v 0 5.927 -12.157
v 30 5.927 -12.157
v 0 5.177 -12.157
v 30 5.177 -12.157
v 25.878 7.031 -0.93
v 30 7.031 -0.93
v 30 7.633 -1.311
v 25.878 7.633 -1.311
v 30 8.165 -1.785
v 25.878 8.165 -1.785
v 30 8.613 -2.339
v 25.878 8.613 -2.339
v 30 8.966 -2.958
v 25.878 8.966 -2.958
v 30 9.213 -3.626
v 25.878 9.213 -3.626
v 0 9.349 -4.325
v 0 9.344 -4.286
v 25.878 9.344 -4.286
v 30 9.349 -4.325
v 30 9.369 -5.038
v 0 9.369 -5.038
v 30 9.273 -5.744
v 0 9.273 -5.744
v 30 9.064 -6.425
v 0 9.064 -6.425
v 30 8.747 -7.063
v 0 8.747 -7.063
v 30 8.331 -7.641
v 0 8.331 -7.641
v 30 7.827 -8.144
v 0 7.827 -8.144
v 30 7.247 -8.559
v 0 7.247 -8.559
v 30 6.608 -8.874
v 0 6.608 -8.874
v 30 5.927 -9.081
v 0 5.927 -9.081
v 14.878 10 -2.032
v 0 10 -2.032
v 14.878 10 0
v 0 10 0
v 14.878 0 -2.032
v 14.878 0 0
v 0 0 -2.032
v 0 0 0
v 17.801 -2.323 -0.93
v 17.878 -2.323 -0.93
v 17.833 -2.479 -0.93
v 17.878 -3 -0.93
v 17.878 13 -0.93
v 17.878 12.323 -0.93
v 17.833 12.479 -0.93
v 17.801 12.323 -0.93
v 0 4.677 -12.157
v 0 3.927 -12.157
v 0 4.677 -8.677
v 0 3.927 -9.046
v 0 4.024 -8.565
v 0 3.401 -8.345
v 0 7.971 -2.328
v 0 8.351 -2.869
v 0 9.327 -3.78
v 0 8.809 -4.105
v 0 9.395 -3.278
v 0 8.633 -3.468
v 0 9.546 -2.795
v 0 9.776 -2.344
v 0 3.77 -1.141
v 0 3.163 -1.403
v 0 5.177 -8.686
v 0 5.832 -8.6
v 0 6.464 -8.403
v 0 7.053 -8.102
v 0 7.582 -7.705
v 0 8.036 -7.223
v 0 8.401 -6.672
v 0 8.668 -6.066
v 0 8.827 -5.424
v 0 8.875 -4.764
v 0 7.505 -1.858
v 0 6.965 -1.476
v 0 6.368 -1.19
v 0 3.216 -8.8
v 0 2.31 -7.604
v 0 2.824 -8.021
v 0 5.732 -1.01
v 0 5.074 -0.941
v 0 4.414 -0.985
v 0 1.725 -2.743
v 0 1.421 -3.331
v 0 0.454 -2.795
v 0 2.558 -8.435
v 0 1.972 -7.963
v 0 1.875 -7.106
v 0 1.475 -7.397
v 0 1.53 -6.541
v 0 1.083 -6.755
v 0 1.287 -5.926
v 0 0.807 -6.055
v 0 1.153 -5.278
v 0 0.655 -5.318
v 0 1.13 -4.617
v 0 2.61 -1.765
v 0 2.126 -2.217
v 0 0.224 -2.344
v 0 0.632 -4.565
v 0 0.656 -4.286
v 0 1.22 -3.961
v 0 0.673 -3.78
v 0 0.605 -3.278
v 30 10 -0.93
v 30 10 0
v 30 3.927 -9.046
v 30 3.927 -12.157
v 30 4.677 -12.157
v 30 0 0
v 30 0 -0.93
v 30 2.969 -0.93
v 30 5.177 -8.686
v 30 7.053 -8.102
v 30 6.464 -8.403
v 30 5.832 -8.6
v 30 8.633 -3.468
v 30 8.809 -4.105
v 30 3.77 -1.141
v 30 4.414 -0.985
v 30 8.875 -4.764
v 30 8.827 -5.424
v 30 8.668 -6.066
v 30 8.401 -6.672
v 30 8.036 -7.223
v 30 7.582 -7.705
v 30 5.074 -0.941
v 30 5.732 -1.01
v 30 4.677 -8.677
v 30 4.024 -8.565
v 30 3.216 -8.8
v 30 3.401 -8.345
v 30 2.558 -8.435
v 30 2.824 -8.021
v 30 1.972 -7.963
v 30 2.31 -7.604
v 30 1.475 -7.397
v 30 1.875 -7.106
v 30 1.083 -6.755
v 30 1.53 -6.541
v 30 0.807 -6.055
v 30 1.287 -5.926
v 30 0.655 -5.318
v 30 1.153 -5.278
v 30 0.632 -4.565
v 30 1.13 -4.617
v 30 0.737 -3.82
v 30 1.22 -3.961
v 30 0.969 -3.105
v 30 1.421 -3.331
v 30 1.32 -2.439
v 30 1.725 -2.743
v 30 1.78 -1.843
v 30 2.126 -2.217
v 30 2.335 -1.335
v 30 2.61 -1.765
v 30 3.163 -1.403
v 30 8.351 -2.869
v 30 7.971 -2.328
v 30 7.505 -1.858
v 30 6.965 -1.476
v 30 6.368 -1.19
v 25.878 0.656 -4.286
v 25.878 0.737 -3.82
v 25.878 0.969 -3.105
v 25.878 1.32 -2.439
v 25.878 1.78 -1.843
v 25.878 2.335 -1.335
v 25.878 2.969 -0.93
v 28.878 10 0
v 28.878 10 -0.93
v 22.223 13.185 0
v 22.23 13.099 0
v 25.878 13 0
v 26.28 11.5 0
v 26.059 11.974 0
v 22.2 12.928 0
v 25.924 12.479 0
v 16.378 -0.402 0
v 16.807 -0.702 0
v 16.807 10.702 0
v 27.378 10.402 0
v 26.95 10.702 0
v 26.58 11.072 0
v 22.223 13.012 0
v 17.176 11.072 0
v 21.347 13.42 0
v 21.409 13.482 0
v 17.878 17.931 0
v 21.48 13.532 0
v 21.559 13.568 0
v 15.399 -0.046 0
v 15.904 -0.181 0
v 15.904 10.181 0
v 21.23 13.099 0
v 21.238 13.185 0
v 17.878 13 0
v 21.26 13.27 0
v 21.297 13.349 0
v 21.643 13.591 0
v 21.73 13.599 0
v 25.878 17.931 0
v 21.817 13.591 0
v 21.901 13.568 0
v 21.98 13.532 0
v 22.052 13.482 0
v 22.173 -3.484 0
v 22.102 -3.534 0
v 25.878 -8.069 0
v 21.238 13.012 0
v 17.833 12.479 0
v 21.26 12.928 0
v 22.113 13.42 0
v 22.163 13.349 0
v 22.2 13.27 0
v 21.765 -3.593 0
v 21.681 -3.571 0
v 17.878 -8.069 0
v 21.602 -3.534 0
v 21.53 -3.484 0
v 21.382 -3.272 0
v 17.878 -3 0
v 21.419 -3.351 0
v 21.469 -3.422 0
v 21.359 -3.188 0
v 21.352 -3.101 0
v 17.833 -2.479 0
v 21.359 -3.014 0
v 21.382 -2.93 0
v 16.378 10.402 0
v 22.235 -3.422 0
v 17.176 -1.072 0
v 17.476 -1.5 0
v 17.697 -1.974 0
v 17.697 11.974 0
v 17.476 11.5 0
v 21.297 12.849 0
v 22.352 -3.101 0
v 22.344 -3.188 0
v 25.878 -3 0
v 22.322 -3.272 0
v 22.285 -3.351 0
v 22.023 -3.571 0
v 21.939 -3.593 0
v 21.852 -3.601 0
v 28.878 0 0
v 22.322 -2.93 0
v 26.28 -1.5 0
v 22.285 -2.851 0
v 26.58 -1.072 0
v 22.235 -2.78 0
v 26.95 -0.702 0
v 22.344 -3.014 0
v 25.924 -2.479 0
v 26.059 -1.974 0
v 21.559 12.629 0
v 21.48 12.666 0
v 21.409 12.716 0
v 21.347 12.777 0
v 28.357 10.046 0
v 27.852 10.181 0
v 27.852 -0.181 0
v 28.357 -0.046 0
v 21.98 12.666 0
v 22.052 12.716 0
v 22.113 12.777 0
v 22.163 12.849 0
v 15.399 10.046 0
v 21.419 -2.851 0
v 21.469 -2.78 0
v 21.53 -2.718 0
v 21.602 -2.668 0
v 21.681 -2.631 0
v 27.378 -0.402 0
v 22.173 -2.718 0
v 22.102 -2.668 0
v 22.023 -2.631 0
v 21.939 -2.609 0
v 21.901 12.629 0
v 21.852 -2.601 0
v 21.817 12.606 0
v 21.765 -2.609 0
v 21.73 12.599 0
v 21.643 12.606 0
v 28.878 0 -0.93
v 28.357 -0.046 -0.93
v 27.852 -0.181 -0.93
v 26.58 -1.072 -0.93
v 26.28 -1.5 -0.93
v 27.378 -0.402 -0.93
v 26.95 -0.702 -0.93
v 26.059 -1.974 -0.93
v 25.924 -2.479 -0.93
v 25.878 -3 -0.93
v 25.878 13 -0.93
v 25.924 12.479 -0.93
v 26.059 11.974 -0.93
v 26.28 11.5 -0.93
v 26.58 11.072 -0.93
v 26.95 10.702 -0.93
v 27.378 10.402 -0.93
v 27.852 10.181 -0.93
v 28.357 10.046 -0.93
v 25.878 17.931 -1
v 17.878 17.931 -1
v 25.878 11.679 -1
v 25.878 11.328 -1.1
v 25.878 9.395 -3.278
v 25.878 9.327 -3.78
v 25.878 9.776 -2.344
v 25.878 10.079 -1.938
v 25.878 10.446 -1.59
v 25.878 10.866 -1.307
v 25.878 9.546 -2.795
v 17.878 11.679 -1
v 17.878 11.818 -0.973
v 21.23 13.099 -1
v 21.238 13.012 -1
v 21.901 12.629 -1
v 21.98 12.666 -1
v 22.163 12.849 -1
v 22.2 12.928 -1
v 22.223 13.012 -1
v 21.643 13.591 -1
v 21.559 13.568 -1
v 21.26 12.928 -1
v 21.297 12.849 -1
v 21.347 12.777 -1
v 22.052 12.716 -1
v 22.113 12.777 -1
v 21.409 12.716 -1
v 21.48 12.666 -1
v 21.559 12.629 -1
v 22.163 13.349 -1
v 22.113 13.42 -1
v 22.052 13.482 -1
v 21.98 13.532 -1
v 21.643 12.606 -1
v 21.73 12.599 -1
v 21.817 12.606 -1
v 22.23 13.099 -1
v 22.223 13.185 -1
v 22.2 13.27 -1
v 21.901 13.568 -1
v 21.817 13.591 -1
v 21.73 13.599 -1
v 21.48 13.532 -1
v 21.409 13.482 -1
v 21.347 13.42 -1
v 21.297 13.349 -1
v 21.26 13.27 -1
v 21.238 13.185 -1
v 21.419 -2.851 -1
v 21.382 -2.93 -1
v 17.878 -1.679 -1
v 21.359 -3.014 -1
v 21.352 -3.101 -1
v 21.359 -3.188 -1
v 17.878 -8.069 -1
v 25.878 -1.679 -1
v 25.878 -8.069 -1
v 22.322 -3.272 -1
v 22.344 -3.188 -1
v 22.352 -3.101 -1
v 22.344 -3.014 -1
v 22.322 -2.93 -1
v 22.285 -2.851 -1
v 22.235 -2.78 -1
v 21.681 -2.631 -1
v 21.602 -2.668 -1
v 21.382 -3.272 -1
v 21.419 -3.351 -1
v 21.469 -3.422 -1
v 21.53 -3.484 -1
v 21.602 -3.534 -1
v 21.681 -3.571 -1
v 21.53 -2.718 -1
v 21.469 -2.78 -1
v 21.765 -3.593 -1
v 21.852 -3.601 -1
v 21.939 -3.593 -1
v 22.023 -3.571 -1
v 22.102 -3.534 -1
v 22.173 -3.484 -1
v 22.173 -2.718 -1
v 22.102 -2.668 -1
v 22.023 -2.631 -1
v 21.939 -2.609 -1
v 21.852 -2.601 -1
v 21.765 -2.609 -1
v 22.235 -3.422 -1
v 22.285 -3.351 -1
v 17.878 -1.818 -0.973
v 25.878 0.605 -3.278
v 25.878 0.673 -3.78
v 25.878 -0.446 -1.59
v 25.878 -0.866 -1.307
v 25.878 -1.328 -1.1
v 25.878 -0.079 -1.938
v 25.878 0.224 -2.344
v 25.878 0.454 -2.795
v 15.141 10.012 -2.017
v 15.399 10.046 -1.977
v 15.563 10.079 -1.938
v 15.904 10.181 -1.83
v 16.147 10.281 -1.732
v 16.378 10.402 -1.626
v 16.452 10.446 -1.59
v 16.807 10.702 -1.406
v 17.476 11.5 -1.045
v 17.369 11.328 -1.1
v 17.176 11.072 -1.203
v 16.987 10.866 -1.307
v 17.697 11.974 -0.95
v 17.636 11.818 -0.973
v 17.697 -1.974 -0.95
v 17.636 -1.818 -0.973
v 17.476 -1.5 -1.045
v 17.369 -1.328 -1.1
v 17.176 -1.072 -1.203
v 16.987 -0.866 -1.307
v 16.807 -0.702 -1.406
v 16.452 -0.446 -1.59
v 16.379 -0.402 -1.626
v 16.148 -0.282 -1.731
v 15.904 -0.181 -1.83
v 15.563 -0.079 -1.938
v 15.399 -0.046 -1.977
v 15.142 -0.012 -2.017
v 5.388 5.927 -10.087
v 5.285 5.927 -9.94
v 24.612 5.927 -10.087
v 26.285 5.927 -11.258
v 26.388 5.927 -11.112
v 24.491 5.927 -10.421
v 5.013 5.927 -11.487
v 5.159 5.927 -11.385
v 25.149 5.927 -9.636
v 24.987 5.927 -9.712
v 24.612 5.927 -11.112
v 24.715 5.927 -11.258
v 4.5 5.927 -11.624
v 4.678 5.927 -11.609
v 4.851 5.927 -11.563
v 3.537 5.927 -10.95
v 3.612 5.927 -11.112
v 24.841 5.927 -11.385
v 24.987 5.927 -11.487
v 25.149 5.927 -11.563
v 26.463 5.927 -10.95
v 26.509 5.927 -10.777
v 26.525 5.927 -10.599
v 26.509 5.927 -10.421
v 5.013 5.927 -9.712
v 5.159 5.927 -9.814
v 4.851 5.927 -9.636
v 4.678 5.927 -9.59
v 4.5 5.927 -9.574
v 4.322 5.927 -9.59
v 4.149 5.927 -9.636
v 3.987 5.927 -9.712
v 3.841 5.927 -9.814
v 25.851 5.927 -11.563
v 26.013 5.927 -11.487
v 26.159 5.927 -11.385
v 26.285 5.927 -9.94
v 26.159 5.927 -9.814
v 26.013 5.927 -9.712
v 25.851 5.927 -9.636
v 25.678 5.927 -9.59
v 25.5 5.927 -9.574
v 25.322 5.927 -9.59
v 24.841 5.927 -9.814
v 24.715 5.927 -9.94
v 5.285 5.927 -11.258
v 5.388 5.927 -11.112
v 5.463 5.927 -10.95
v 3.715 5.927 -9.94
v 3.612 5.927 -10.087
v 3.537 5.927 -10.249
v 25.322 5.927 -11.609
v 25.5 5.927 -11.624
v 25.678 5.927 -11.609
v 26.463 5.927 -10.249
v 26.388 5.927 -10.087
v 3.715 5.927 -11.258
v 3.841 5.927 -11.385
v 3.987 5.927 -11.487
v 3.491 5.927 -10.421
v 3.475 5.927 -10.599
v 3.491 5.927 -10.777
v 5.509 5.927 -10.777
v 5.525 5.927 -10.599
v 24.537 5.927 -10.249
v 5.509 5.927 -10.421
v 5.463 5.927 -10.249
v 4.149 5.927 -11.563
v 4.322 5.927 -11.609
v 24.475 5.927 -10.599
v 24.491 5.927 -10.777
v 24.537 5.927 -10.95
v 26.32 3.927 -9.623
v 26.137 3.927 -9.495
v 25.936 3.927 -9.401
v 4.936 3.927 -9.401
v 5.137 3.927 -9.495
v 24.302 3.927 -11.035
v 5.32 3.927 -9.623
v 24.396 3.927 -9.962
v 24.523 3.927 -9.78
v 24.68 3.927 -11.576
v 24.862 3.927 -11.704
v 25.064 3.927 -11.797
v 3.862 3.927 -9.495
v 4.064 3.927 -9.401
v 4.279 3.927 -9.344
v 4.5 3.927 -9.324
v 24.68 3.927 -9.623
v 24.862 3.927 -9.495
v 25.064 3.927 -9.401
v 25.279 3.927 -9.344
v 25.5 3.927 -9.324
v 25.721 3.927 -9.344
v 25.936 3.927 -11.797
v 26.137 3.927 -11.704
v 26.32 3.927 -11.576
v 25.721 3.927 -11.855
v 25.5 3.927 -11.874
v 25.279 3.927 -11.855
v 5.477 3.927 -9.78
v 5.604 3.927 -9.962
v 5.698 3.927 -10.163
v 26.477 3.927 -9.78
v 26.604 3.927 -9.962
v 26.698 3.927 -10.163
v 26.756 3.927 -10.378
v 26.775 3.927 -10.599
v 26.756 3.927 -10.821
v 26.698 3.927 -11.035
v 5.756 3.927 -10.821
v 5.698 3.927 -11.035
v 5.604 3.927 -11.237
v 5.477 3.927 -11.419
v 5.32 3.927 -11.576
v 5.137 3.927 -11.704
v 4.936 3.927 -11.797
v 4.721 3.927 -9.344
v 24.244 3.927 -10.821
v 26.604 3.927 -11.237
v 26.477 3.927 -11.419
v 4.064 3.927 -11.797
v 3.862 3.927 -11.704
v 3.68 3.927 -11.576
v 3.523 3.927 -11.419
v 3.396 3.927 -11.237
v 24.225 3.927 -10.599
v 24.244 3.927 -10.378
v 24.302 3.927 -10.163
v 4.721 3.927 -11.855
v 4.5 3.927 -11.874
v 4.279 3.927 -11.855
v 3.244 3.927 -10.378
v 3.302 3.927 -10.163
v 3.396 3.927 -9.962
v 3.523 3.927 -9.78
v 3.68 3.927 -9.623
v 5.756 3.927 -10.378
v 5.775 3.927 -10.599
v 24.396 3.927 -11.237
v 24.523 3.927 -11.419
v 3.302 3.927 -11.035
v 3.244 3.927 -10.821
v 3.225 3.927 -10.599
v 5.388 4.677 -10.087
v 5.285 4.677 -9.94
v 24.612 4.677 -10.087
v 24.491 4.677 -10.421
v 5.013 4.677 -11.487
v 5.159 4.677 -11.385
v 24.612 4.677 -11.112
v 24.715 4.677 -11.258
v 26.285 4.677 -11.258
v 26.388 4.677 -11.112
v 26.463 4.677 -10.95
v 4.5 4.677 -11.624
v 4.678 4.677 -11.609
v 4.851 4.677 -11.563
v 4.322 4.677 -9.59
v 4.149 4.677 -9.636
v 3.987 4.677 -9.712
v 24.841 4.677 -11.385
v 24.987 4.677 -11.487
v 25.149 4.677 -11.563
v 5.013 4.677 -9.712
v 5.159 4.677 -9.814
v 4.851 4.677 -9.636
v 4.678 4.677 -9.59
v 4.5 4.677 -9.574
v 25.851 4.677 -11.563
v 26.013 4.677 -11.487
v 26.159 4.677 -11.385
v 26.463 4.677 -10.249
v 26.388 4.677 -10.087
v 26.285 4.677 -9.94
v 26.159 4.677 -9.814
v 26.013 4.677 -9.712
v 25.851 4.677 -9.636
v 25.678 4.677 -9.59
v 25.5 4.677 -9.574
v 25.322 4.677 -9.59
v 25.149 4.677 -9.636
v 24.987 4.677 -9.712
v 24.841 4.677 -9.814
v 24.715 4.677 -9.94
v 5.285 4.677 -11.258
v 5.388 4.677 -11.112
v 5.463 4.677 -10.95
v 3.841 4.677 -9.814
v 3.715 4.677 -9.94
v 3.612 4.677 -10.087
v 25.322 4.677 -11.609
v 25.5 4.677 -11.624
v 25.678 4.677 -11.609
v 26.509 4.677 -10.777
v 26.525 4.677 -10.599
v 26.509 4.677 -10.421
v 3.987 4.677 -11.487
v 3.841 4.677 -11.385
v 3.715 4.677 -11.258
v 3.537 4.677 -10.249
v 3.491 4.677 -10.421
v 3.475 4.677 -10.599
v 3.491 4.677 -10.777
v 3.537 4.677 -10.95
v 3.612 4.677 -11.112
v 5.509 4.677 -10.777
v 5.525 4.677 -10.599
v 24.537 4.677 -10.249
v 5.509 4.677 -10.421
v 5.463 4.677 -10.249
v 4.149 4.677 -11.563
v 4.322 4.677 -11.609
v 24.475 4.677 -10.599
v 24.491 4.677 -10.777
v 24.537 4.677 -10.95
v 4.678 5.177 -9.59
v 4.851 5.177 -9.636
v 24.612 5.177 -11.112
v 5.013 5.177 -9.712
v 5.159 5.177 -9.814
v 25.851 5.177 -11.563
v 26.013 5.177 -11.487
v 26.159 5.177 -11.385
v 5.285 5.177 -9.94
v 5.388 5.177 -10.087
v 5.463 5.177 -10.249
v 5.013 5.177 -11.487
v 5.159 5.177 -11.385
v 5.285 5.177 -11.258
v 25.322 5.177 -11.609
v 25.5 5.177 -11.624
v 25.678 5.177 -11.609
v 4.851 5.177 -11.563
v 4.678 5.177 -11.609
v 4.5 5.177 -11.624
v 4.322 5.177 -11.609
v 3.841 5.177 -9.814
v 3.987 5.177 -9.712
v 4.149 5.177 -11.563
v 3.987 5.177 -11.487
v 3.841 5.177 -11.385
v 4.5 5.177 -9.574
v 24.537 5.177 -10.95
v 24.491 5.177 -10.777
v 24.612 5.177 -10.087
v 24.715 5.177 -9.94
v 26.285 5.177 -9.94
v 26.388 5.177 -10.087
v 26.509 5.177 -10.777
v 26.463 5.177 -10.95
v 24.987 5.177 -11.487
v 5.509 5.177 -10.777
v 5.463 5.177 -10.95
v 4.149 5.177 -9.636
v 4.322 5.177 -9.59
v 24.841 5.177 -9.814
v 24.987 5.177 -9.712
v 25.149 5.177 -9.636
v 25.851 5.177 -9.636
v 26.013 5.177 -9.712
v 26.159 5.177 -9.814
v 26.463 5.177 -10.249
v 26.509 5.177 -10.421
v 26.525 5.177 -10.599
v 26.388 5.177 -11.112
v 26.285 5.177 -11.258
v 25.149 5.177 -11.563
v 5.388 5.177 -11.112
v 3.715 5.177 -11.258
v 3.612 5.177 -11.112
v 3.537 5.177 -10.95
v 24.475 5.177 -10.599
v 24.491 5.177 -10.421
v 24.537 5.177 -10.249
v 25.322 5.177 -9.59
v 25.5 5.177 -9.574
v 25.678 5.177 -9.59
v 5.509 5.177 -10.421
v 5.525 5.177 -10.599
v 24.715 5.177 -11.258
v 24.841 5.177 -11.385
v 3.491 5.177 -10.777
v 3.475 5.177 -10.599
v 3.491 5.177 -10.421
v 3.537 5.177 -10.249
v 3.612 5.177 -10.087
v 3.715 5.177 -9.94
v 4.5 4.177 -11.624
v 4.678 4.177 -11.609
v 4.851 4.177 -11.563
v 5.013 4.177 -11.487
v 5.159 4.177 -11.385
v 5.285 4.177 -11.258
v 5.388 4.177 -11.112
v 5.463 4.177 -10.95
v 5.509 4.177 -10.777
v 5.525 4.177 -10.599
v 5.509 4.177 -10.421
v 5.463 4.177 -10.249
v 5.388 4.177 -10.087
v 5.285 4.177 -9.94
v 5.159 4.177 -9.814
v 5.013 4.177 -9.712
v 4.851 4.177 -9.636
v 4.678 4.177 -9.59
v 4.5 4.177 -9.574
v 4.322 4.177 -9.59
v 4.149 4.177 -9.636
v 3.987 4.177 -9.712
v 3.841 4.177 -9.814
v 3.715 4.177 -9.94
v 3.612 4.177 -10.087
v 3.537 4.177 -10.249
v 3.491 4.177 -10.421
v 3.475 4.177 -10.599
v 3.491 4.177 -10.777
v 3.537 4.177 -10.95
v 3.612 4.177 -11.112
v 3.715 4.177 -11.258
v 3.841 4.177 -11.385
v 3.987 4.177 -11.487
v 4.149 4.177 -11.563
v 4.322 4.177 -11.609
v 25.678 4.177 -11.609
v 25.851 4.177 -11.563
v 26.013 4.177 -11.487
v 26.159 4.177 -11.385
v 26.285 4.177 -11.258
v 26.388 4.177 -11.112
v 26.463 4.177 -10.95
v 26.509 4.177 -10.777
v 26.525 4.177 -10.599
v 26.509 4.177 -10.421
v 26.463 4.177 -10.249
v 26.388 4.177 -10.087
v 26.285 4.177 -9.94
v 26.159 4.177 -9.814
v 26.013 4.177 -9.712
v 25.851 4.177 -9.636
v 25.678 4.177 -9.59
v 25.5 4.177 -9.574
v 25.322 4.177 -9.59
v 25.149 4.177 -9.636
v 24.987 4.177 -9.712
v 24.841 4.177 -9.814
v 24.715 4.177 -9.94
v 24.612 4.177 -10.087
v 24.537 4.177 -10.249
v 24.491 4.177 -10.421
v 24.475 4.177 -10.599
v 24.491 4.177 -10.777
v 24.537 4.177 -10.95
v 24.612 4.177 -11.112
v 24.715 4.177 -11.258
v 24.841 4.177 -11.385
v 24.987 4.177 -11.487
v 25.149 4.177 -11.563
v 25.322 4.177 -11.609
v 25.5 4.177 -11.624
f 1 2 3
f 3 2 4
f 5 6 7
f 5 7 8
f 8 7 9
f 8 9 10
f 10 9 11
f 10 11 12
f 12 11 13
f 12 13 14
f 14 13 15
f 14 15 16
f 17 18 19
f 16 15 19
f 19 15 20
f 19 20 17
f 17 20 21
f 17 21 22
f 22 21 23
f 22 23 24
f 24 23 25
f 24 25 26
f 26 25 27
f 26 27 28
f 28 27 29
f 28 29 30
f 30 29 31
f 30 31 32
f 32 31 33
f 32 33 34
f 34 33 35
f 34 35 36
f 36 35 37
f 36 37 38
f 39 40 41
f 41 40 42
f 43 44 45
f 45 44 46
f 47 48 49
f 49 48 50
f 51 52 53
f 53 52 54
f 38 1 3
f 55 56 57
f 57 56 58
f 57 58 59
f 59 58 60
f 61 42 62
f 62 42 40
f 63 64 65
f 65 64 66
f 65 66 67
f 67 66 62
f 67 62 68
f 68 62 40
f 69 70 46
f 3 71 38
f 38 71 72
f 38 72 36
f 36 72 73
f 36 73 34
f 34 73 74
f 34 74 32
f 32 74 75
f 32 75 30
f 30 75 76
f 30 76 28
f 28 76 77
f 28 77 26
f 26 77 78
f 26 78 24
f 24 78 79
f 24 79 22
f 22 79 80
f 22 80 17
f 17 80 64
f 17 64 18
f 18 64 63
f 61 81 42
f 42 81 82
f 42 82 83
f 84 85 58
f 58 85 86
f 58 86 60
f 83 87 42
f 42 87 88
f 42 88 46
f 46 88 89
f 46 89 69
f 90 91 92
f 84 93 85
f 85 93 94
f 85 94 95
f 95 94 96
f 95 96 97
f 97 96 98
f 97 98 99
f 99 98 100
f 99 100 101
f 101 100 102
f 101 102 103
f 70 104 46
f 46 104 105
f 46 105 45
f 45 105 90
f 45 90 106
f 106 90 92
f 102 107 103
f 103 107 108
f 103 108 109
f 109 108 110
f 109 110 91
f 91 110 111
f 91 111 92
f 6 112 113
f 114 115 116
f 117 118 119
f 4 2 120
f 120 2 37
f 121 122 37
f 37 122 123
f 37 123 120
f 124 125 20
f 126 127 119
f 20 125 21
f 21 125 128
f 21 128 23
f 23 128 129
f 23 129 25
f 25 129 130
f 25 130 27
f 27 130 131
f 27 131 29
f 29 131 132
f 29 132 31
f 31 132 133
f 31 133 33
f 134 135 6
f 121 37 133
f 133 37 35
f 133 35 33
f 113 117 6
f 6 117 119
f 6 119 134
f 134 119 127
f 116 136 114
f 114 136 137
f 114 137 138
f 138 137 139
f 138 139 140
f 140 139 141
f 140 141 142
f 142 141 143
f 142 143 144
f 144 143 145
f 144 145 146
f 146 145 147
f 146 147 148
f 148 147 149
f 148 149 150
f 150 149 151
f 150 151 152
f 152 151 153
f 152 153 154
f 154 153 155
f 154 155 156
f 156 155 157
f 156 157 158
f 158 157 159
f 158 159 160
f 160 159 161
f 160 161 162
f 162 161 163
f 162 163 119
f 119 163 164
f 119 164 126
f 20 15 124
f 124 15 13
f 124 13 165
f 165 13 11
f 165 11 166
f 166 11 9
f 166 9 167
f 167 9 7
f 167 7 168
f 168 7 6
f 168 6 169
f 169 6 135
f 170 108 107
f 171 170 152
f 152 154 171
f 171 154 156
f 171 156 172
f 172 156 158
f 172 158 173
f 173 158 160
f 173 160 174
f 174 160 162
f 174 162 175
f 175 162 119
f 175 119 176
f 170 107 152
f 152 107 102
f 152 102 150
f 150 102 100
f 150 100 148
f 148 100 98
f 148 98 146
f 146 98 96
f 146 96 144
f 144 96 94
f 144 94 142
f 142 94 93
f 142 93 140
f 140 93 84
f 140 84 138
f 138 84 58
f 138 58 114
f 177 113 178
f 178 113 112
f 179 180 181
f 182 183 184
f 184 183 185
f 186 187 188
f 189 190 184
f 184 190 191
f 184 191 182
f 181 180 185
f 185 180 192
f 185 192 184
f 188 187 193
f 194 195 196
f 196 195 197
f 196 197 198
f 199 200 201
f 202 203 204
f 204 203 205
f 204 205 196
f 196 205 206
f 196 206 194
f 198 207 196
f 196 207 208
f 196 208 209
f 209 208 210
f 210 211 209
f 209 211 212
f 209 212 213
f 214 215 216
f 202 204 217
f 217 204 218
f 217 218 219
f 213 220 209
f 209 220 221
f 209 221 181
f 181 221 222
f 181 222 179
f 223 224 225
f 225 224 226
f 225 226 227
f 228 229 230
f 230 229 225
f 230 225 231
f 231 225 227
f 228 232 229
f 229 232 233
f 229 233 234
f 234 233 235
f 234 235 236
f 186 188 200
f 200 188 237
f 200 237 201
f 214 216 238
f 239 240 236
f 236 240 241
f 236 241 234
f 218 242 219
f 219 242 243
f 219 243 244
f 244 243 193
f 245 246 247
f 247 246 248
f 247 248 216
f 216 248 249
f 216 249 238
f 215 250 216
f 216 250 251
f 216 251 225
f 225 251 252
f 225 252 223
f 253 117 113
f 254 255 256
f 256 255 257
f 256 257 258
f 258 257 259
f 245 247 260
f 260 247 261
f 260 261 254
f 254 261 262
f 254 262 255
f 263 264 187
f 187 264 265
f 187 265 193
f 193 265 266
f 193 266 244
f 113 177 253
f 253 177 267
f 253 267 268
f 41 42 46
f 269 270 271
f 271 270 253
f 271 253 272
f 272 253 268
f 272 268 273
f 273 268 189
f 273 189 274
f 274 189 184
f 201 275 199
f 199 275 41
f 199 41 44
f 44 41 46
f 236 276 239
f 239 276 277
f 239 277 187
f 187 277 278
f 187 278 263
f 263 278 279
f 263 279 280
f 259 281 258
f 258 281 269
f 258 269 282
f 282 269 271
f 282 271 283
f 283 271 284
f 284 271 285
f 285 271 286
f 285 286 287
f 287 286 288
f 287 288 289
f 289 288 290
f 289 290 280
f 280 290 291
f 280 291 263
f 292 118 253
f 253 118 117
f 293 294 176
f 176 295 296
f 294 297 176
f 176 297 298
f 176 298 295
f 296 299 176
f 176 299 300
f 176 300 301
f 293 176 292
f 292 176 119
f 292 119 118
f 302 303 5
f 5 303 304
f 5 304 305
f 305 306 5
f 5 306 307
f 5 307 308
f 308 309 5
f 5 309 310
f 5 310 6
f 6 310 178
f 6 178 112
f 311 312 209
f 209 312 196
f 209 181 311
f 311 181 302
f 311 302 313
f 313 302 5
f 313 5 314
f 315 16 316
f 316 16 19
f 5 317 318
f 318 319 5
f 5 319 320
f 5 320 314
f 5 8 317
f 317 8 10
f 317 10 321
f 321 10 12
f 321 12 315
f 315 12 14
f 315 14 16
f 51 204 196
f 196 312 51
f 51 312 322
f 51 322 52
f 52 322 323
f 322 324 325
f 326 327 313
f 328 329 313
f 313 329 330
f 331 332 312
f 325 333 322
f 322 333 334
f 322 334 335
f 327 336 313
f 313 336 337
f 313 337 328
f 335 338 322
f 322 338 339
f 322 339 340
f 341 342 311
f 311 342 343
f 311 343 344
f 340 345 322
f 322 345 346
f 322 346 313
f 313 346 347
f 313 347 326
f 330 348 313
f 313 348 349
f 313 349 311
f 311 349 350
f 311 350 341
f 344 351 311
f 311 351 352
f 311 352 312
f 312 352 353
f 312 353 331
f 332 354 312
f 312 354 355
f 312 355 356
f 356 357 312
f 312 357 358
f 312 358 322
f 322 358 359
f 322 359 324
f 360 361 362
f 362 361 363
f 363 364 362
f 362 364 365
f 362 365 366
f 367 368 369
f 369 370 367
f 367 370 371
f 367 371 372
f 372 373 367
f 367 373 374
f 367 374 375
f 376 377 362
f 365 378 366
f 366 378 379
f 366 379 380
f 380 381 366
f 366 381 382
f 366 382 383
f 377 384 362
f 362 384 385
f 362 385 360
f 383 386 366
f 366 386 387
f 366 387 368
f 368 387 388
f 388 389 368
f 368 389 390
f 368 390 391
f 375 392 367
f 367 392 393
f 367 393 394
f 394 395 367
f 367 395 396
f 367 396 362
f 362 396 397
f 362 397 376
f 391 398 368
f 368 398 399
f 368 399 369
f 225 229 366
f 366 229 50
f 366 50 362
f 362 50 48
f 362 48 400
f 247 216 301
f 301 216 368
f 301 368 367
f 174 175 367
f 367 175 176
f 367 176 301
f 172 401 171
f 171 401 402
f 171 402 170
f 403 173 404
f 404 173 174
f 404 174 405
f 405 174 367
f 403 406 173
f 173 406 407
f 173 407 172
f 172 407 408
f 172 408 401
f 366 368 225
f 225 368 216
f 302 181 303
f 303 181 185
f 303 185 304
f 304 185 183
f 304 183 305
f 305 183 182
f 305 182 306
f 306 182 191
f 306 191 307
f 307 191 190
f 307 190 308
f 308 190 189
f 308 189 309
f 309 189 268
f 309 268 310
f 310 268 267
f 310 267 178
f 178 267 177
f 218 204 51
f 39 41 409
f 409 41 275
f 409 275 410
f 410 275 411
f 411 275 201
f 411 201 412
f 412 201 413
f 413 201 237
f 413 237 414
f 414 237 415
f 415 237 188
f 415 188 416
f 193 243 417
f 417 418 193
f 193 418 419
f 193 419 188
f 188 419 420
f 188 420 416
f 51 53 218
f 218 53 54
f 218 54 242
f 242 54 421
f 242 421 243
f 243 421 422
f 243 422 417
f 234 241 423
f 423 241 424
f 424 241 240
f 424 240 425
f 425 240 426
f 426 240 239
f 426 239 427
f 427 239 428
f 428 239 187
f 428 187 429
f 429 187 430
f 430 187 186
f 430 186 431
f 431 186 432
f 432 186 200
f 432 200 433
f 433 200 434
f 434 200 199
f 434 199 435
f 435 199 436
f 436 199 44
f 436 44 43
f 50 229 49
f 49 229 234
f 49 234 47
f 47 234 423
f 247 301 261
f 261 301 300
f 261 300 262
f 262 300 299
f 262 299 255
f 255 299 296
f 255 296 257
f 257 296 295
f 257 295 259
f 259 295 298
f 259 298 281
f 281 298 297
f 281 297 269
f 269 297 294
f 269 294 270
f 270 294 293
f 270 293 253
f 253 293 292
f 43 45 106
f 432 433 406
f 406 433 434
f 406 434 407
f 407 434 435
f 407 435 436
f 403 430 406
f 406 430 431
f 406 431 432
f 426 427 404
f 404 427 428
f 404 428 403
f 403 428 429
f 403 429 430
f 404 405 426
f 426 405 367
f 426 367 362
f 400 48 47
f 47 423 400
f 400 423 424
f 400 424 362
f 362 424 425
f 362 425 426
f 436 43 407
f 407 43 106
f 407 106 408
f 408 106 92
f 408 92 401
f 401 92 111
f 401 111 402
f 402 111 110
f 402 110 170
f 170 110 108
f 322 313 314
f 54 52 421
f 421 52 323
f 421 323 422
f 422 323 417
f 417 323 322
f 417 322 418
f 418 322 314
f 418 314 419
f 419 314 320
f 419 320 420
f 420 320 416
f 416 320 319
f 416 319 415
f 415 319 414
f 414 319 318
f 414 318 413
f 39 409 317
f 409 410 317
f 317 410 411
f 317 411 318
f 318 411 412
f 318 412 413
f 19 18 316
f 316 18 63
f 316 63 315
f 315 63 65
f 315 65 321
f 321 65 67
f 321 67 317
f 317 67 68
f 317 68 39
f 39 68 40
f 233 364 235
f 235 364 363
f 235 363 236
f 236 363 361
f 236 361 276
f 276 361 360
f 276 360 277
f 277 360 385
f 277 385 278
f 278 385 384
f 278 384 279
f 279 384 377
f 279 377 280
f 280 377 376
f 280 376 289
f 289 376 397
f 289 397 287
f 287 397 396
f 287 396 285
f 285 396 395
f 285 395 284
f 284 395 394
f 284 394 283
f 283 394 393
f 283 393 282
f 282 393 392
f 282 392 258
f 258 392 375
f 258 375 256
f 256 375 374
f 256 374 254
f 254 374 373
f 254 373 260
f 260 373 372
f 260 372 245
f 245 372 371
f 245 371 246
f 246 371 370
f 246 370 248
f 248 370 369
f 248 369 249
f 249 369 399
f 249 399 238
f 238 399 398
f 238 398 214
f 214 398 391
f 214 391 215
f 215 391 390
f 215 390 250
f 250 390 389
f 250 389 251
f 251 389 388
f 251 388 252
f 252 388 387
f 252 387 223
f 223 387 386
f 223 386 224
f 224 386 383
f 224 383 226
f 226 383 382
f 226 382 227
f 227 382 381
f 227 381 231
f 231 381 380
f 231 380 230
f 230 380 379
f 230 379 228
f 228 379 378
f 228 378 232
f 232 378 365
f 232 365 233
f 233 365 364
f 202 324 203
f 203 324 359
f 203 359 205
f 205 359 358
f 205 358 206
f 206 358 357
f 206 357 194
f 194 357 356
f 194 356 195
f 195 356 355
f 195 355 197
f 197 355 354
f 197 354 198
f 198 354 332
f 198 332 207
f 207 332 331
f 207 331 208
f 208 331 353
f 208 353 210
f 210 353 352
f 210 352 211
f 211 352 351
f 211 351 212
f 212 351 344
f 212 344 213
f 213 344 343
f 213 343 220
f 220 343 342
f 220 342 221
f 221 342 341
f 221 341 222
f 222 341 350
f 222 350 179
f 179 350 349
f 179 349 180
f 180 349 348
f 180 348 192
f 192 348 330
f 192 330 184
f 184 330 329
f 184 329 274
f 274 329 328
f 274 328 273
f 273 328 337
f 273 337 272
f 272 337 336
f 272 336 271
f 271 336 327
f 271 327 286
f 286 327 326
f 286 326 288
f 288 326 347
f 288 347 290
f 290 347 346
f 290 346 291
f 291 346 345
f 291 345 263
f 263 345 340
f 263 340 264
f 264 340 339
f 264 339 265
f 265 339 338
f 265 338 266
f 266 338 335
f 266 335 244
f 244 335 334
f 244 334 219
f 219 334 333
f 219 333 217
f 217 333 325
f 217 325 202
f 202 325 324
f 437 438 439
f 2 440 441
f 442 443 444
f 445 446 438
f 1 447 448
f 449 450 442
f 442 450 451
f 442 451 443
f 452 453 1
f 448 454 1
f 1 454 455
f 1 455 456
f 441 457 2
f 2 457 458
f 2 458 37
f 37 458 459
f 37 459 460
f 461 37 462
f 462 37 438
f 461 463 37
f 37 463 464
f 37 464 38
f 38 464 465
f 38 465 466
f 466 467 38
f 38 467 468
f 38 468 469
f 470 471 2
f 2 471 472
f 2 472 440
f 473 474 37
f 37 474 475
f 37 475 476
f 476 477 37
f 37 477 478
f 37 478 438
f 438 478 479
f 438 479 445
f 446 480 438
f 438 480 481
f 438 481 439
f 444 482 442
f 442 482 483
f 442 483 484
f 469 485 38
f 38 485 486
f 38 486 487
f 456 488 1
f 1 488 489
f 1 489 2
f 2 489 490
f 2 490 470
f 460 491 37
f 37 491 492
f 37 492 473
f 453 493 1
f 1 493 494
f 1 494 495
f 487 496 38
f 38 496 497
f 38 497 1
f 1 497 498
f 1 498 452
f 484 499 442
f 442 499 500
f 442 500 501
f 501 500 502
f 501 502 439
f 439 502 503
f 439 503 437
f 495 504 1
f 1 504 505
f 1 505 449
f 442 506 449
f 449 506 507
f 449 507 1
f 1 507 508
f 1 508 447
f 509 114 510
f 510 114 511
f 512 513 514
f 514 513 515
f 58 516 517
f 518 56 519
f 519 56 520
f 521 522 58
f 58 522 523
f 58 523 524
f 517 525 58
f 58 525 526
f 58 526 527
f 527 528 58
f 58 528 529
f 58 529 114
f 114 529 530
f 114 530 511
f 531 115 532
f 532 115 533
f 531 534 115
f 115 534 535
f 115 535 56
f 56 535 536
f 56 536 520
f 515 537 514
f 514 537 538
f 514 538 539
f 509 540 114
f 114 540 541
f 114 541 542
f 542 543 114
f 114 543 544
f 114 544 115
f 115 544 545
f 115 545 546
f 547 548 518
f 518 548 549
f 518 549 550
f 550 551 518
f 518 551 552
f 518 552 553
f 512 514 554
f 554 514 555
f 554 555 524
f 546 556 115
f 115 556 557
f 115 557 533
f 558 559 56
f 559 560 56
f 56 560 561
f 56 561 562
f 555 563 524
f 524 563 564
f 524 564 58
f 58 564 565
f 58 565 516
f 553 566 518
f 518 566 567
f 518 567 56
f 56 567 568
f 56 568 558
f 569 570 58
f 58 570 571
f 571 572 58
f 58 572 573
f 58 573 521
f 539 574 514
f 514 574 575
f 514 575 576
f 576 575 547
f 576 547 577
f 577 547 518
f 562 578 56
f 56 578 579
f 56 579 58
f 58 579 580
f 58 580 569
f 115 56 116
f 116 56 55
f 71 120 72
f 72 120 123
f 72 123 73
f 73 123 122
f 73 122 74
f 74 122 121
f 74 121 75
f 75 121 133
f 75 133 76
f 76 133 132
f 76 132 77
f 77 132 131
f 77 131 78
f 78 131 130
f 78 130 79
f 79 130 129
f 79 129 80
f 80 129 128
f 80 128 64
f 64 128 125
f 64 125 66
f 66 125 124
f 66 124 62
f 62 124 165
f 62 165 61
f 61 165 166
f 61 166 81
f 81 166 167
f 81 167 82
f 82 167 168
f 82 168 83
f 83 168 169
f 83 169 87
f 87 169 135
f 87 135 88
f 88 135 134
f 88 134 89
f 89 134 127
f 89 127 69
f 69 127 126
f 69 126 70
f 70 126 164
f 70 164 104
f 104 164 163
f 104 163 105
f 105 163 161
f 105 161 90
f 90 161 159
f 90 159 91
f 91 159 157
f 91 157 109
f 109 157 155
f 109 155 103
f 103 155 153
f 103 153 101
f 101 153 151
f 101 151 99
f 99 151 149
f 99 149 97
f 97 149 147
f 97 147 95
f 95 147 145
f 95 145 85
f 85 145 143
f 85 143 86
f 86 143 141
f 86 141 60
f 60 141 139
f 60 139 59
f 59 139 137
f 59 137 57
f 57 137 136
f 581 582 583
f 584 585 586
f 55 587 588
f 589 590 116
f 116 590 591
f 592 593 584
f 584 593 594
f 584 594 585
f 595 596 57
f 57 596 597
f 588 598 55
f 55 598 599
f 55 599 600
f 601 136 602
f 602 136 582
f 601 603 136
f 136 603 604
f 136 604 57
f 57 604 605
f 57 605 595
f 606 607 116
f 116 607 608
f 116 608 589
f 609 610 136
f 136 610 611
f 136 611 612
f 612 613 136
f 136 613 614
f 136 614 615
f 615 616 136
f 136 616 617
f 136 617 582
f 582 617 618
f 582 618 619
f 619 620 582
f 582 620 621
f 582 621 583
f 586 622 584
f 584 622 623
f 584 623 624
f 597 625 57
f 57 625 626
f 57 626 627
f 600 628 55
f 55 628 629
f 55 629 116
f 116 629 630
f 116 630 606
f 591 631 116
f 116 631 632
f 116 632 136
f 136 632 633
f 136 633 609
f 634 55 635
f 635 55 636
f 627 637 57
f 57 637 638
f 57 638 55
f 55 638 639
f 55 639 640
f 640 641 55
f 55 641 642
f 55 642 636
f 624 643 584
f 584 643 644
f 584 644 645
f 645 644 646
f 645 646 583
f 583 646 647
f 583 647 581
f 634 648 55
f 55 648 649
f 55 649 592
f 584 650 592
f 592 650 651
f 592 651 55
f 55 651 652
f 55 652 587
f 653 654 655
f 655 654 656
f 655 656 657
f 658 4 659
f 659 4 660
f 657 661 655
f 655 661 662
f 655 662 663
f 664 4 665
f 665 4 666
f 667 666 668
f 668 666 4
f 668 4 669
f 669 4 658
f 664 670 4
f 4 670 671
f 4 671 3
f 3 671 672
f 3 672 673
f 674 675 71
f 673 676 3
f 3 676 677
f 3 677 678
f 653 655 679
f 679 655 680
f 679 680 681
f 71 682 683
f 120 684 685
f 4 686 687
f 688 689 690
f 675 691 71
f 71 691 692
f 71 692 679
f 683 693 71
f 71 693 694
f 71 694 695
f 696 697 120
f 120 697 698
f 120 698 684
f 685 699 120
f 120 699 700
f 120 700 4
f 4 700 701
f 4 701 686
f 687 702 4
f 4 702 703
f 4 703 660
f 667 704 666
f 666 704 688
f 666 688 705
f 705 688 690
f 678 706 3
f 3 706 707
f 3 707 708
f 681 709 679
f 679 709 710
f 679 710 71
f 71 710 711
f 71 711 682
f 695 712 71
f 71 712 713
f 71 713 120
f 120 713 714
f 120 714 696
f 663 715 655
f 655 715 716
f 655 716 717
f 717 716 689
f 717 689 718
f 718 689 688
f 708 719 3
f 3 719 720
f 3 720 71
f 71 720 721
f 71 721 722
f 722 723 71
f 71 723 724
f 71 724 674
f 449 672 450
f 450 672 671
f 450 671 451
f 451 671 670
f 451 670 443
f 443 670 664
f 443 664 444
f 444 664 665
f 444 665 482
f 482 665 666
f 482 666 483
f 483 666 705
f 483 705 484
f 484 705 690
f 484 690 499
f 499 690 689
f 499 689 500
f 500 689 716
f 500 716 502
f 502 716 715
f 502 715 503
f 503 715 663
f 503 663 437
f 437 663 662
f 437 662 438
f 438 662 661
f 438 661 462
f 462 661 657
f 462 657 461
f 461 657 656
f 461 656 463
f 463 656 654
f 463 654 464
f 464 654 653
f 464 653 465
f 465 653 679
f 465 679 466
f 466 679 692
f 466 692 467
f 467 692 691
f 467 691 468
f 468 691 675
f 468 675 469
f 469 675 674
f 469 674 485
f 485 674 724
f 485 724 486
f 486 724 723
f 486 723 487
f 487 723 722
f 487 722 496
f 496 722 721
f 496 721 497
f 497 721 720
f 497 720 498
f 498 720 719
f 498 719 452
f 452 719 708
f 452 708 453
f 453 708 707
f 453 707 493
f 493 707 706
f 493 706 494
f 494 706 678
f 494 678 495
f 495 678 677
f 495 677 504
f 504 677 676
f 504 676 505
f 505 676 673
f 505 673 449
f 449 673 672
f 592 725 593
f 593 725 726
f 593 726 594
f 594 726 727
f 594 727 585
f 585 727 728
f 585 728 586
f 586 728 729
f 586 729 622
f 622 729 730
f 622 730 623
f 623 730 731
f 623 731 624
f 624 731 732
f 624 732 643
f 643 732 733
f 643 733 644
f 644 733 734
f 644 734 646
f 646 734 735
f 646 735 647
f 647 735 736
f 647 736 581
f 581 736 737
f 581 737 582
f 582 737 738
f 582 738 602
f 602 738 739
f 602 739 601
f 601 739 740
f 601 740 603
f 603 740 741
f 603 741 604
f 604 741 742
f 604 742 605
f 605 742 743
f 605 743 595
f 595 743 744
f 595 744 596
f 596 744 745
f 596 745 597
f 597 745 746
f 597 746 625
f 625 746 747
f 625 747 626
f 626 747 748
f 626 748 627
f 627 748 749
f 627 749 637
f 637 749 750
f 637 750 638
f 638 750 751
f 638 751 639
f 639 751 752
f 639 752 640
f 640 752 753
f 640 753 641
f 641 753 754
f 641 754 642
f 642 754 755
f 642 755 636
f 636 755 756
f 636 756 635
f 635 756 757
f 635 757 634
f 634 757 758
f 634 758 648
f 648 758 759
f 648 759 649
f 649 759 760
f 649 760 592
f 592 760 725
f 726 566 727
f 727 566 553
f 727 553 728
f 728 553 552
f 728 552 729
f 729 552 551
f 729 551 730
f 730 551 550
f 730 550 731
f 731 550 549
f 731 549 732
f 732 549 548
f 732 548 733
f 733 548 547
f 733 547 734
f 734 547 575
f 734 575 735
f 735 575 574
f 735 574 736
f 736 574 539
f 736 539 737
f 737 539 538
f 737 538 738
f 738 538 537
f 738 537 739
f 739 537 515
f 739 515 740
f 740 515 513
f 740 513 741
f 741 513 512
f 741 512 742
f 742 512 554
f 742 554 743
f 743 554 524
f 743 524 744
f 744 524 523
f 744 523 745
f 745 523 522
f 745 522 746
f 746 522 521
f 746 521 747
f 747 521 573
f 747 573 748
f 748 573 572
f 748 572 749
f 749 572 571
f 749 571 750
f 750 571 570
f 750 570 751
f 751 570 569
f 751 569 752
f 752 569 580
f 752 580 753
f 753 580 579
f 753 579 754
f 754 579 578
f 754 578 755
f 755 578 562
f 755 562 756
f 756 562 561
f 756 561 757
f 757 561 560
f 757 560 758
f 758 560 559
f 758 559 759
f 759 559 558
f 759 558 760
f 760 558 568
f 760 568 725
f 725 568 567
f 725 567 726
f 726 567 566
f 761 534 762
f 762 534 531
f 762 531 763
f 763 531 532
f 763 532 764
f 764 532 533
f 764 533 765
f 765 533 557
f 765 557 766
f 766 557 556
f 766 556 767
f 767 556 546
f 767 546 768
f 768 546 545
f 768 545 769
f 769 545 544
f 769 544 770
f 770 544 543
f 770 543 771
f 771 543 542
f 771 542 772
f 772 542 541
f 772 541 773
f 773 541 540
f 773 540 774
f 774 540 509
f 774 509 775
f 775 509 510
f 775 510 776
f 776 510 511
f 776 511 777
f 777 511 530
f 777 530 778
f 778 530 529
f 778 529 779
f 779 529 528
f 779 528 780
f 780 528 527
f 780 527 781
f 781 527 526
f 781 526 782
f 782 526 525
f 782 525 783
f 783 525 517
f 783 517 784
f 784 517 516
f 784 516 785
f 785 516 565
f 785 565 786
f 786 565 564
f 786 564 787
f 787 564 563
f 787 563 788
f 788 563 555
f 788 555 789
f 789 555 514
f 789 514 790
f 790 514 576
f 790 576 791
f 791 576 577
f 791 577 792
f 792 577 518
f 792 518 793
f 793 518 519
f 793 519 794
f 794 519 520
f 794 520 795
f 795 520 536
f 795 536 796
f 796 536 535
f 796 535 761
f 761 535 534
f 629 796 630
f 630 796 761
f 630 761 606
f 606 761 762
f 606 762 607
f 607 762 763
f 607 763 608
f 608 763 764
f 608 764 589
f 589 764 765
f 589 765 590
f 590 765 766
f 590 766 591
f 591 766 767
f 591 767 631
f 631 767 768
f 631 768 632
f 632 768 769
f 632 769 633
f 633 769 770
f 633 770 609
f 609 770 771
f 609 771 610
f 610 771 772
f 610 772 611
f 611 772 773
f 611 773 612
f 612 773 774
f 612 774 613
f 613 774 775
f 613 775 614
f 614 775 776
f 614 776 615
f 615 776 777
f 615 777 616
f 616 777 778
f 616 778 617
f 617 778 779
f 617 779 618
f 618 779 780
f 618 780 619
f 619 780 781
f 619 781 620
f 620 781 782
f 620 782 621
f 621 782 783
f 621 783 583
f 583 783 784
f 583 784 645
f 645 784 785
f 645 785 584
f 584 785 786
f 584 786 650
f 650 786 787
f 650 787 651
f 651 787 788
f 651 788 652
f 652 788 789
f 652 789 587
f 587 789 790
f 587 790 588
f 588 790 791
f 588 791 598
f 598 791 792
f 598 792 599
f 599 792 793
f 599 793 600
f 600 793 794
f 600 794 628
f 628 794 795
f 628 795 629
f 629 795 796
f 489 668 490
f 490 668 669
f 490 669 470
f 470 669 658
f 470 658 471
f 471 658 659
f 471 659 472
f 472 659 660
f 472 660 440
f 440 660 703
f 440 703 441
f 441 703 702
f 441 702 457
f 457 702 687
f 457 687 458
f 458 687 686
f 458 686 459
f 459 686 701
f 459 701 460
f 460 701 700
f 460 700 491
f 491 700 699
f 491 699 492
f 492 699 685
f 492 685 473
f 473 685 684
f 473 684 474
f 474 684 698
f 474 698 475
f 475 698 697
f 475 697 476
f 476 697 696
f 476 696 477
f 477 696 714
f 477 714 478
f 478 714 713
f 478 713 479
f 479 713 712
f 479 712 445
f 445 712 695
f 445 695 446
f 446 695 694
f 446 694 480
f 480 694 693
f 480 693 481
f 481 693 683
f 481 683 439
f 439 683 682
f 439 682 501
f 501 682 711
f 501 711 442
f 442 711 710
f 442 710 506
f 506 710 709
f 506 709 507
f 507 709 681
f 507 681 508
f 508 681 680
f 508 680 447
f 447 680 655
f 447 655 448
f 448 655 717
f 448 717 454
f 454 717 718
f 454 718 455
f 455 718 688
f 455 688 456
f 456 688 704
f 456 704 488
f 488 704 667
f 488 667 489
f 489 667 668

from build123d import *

# Parameters (mm, degrees)
SKETCH1_R                          = 4.375
SKETCH1_W                          = 0.93
SKETCH1_H                          = 10
BOSS_EXTRUDE1_DEPTH                = 30
SKETCH2_W                          = 8
SKETCH2_H                          = 26
BOSS_EXTRUDE3_DEPTH                = 1
FILLET4_R                          = 3
FILLET5_DEPTH                      = 25.878263471
FILLET5_START                      = 14.878263371
FILLET5_2_DEPTH                    = 11.0000001
FILLET5_START_2                    = -3
FILLET5_3_DEPTH                    = 2.07
CUT_EXTRUDE1_REACH                 = 37.895
SKETCH3_R                          = 0.5
SKETCH4_W                          = 10
SKETCH4_H                          = 2
BOSS_EXTRUDE4_DEPTH                = 30
CUT_EXTRUDE2_REACH                 = 39.004
SKETCH5_R                          = 3.875
CUT_EXTRUDE4_REACH                 = 39.004
M2_5X0_45_TAPPED_HOLE1_D           = 2.05
M2_5X0_45_TAPPED_HOLE1_CSINK_D     = 2.55
M2_5X0_45_TAPPED_HOLE1_CSINK_ANGLE = 90


with BuildPart() as part:
    # Sketch1 → Boss-Extrude1 (new body)
    with BuildSketch(Plane(origin=(0, 0, 0), x_dir=(0, 0, -1), z_dir=(1, 0, 0))):
        with Locations((4.805, 5)):
            Circle(SKETCH1_R)
        with Locations((0.465, 5)):
            Rectangle(SKETCH1_W, SKETCH1_H)
    extrude(amount=BOSS_EXTRUDE1_DEPTH)

    # Sketch2 → Boss-Extrude3 (add)
    with BuildSketch(Plane.XY):
        with Locations((21.878263471, 4.931133475)):
            Rectangle(SKETCH2_W, SKETCH2_H)
    extrude(amount=-BOSS_EXTRUDE3_DEPTH)

    # Fillet4
    fillet4_edges = [part.edges().sort_by_distance(p)[0] for p in [
        (17.878263471, 10, -0.465),
        (25.878263471, 10, -0.465),
        (17.878263471, 0, -0.465),
        (25.878263471, 0, -0.465),
    ]]
    fillet(fillet4_edges, radius=FILLET4_R)

    # Fillet5: read off the stored shape, not the designer's step
    # Fillet5 outline → Fillet5 (add)
    with BuildSketch(Plane.YZ):
        with BuildLine():
            ThreePointArc((9.344098712, -4.285932203), (9.442351653, -3.091914153), (10, -2.031555221))
            Line((10, -2.031555221), (10, -0.93))
            Line((10, -0.93), (7.031009601, -0.93))
            ThreePointArc((7.031009601, -0.93), (8.602231494, -2.32214816), (9.344098712, -4.285932203))
        make_face()
        with BuildLine():
            ThreePointArc((0, -2.031555221), (0.557648347, -3.091914153), (0.655901288, -4.285932203))
            ThreePointArc((0.655901288, -4.285932203), (1.397768506, -2.32214816), (2.968990399, -0.93))
            Line((2.968990399, -0.93), (0, -0.93))
            Line((0, -0.93), (0, -2.031555221))
        make_face()
    extrude(amount=FILLET5_DEPTH)

    # Fillet5 2 outline → Fillet5 2 (add)
    with BuildSketch(Plane.YZ.offset(FILLET5_START)):
        with BuildLine():
            ThreePointArc((10, -2.031555221), (11.037478267, -1.219341931), (12.322909258, -0.93))
            Line((12.322909258, -0.93), (10, -0.93))
            Line((10, -0.93), (10, -2.031555221))
        make_face()
        with BuildLine():
            Line((0, -2.031555221), (0, -0.93))
            Line((0, -0.93), (-2.322909258, -0.93))
            ThreePointArc((-2.322909258, -0.93), (-1.037478267, -1.219341931), (0, -2.031555221))
        make_face()
    extrude(amount=FILLET5_2_DEPTH)

    # Fillet5 3 outline → Fillet5 3 (cut)
    with BuildSketch(Plane.XY.offset(FILLET5_START_2)):
        with BuildLine():
            ThreePointArc((14.878263471, 10), (16.999583814, 10.878679656), (17.878263471, 13))
            Line((17.878263471, 13), (17.878263471, 14))
            Line((17.878263471, 14), (14.878263371, 14))
            Line((14.878263371, 14), (14.878263471, 10))
        make_face()
        with BuildLine():
            Line((14.878263371, -4), (17.878263471, -4))
            Line((17.878263471, -4), (17.878263471, -3))
            ThreePointArc((17.878263471, -3), (16.999583814, -0.878679657), (14.878263471, 0))
            Line((14.878263471, 0), (14.878263371, -4))
        make_face()
    extrude(amount=FILLET5_3_DEPTH, mode=Mode.SUBTRACT)

    # Sketch3 → Cut-Extrude1 (cut, up to next)
    with BuildSketch(Plane(origin=(0, 0, -1), x_dir=(-1, 0, 0), z_dir=(0, 0, -1)), mode=Mode.PRIVATE) as cut_extrude1_sk1:
        with Locations((-21.730165356, 13.098626711)):
            Circle(SKETCH3_R)
    cut_extrude1_tool1 = extrude(cut_extrude1_sk1.sketch, amount=-CUT_EXTRUDE1_REACH, mode=Mode.PRIVATE) & part.part
    # Sketch3 → Cut-Extrude1 (cut, up to next)
    with BuildSketch(Plane(origin=(0, 0, -1), x_dir=(-1, 0, 0), z_dir=(0, 0, -1)), mode=Mode.PRIVATE) as cut_extrude1_sk2:
        with Locations((-21.851713242, -3.100917298)):
            Circle(SKETCH3_R)
    cut_extrude1_tool2 = extrude(cut_extrude1_sk2.sketch, amount=-CUT_EXTRUDE1_REACH, mode=Mode.PRIVATE) & part.part
    add(cut_extrude1_tool1.solids().sort_by_distance((21.730165, 13.098627, -1))[0], mode=Mode.SUBTRACT)
    add(cut_extrude1_tool2.solids().sort_by_distance((21.851713, -3.100917, -1))[0], mode=Mode.SUBTRACT)

    # Sketch4 → Boss-Extrude4 (add)
    with BuildSketch(Plane(origin=(30, 0, 0), x_dir=(0, 0, -1), z_dir=(1, 0, 0))):
        with Locations((7.157056942, 4.926549366)):
            Rectangle(SKETCH4_W, SKETCH4_H)
    extrude(amount=-BOSS_EXTRUDE4_DEPTH)

    # Sketch5 → Cut-Extrude2 (cut, up to next)
    with BuildSketch(Plane(origin=(30, 0, 0), x_dir=(0, 0, -1), z_dir=(1, 0, 0)), mode=Mode.PRIVATE) as cut_extrude2_sk1:
        with Locations((4.815292967, 5.000024119)):
            Circle(SKETCH5_R)
    cut_extrude2_tool1 = extrude(cut_extrude2_sk1.sketch, amount=-CUT_EXTRUDE2_REACH, mode=Mode.PRIVATE) & part.part
    add(cut_extrude2_tool1.solids().sort_by_distance((30, 5.000024, -4.815293))[0], mode=Mode.SUBTRACT)

    # Sketch6 → Cut-Extrude4 (cut, up to next)
    with BuildSketch(Plane(origin=(30, 0, 0), x_dir=(0, 0, -1), z_dir=(1, 0, 0)), mode=Mode.PRIVATE) as cut_extrude4_sk1:
        with BuildLine():
            Line((12.157056942, 5.176549366), (12.157056942, 4.676549366))
            Line((12.157056942, 4.676549366), (8.676767955, 4.676549366))
            add(Edge.make_bspline(
                [(8.676767955, 4.676549366), (8.69766925, 4.926395918), (8.686270084, 5.176549366)],
                knots=[0, 0, 0, 1, 1, 1], degree=2))
            Line((8.686270084, 5.176549366), (12.157056942, 5.176549366))
        make_face()
    cut_extrude4_tool1 = extrude(cut_extrude4_sk1.sketch, amount=-CUT_EXTRUDE4_REACH, mode=Mode.PRIVATE) & part.part
    add(cut_extrude4_tool1.solids().sort_by_distance((30, 4.926435, -10.421978))[0], mode=Mode.SUBTRACT)

    # M2.5x0.45 Tapped Hole1 (through all)
    with Locations(Plane(origin=(0, 3.926549366, 0), x_dir=(-1, 0, 0), z_dir=(0, -1, 0))):
        with Locations((-25.5, 10.599323574), (-4.5, 10.599323574)):
            CounterSinkHole(M2_5X0_45_TAPPED_HOLE1_D / 2, M2_5X0_45_TAPPED_HOLE1_CSINK_D / 2, counter_sink_angle=M2_5X0_45_TAPPED_HOLE1_CSINK_ANGLE)


solid = part.part
